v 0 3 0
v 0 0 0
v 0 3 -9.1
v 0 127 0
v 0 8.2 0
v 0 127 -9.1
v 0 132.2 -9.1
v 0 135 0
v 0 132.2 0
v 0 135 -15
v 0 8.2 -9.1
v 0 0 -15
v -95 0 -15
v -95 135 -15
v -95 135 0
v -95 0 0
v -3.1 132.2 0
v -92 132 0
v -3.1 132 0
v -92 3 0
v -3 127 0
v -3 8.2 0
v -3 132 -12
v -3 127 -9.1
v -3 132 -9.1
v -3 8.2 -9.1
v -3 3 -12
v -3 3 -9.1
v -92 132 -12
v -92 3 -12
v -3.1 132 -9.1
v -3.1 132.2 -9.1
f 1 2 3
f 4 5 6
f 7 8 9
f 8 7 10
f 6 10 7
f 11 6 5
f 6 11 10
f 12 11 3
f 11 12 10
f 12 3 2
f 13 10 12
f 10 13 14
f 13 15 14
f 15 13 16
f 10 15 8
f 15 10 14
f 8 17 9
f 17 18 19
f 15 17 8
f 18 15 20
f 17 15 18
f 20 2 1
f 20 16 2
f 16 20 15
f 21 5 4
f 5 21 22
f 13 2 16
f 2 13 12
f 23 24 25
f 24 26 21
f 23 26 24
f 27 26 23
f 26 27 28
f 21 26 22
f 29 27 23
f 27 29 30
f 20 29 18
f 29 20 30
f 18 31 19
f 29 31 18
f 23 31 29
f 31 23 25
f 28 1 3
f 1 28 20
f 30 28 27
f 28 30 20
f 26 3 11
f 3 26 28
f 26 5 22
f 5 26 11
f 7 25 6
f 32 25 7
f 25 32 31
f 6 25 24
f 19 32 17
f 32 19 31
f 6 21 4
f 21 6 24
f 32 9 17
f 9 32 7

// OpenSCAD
col_width = 17;
width = col_width * 5 + 10; // 5 fingers + some clearances
thickness = 3;

cage_height = 15;
cage_width = 135;

// base plate hinges, for reference...

//// hinges for controller cage        
//translate([0, 10.15, height])
//rotate([90, 90, 0])
//mount_point(5, true);
//
//translate([9, 82, height])
//rotate([90, 90, 180])
//mount_point(5, true);

//
//// lock point
//translate([width - 3, 82, height])
//rotate([90, 90, 180])
//mount_point(5, true);


mount_height = 9;
mount_width = 5;

rotate([0,180,0])
difference() {
    cube([width, cage_width, cage_height]);
    
    translate([thickness,thickness,-thickness])
    cube([width-6, cage_width-6, cage_height]);
    
    translate([-1, thickness, -.1])
    cube([4.1, mount_width+.2, mount_height+.2]);
    
    translate([-1, cage_width-thickness-mount_width, -.1])
    cube([4.1, mount_width+.2, mount_height+.2]);
};
